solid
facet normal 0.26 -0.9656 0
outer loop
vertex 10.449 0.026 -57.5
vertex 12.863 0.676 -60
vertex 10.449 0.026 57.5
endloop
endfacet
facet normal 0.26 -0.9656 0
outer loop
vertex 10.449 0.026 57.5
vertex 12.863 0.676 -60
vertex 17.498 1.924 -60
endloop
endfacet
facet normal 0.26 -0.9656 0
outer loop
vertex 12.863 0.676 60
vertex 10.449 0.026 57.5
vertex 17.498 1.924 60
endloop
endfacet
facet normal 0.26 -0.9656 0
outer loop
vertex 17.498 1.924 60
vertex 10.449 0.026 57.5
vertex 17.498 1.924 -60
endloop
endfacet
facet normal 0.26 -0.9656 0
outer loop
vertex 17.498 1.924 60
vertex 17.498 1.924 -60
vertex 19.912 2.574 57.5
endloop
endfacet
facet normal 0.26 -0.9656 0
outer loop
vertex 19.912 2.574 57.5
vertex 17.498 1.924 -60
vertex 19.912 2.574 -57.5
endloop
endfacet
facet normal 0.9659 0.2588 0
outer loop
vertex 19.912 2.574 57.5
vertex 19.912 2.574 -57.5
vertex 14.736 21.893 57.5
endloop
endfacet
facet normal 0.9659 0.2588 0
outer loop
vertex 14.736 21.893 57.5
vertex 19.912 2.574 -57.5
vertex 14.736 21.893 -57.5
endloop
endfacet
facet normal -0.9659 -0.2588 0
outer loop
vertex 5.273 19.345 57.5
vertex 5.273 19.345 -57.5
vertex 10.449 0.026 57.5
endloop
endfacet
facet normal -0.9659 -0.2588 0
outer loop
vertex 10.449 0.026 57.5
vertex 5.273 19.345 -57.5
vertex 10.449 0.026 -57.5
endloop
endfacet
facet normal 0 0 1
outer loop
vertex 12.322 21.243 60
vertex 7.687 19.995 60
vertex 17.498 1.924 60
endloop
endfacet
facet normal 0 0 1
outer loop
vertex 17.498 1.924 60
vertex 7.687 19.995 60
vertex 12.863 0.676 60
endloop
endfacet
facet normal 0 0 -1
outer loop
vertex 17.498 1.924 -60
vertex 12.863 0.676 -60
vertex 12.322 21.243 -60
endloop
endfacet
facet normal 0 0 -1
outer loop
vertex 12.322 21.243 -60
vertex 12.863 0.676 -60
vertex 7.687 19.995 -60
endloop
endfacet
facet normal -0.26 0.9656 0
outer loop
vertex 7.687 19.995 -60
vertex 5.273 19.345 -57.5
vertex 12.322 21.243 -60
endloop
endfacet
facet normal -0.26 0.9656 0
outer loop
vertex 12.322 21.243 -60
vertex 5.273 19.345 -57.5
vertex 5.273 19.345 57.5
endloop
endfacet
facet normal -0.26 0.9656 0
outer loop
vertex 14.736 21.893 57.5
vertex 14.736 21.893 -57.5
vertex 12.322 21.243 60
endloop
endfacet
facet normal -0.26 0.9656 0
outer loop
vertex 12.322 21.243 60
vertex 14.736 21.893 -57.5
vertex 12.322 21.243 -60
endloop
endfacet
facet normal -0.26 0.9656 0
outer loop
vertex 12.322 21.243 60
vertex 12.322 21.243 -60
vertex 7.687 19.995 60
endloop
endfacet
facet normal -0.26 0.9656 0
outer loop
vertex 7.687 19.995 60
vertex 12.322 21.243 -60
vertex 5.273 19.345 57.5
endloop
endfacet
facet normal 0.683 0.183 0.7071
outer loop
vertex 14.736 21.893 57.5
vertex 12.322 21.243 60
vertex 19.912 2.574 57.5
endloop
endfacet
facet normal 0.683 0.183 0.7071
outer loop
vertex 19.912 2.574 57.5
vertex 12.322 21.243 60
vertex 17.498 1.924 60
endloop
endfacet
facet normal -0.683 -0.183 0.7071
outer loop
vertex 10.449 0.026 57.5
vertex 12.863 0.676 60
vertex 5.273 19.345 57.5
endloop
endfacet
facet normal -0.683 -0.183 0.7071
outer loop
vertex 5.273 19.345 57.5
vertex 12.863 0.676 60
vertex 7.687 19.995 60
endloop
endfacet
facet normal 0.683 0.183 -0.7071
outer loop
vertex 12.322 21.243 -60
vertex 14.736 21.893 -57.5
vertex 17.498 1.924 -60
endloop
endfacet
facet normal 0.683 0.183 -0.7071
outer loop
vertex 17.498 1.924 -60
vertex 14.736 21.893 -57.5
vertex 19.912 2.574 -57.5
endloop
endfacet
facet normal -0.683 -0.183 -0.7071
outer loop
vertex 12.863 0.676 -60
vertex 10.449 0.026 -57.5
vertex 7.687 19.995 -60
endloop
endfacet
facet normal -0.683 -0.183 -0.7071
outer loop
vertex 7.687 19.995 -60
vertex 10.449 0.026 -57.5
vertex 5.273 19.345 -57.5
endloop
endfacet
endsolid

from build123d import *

# Parameters (mm, degrees)
BOSS_EXTRUDE1_DEPTH    = 60
CUT_EXTRUDE1_DEPTH     = 128.644720336
MOVE_START             = 10
MOVE_FACE1_OUTLINE_W   = 23
MOVE_FACE1_OUTLINE_H   = 122
MOVE_FACE1_DEPTH       = 0.1
MOVE_START_2           = 19.9
MOVE_FACE1_2_OUTLINE_W = 23
MOVE_FACE1_2_OUTLINE_H = 122
MOVE_FACE1_2_DEPTH     = 0.1
CHAMFER1_SIZE          = 2.5


# Read off the part's stored shape, not the designer's step: Move Face1
with BuildPart() as part:
    # Sketch1 → Boss-Extrude1 (new, symmetric)
    with BuildSketch(Plane.XY):
        Polygon((0, 38.637033052), (10.352761804, 0), (20.008855708, 2.6), (10.352761804, 38.637033052), align=None)
    extrude(amount=BOSS_EXTRUDE1_DEPTH, both=True)

    # Sketch2 → Cut-Extrude1 (cut, through all)
    with BuildSketch(Plane.XY.offset(60)):
        Polygon((5.176380902, 19.318516526), (14.832474806, 21.918516526), (10.352761804, 38.637033052), (0, 38.637033052), align=None)
    extrude(amount=-CUT_EXTRUDE1_DEPTH, mode=Mode.SUBTRACT)

    # Move Face1 outline → Move Face1 (cut)
    with BuildSketch(Plane(origin=(0, 0, 0), x_dir=(-0.258819045102515, 0.9659258262890698, 0), z_dir=(0.9659258262890699, 0.258819045102515, 0)).offset(MOVE_START)):
        with Locations((7.5, 0)):
            Rectangle(MOVE_FACE1_OUTLINE_W, MOVE_FACE1_OUTLINE_H)
    extrude(amount=MOVE_FACE1_DEPTH, mode=Mode.SUBTRACT)

    # Move Face1 2 outline → Move Face1 2 (cut)
    with BuildSketch(Plane(origin=(0, 0, 0), x_dir=(-0.258819045102515, 0.9659258262890698, 0), z_dir=(0.9659258262890699, 0.258819045102515, 0)).offset(MOVE_START_2)):
        with Locations((7.5, 0)):
            Rectangle(MOVE_FACE1_2_OUTLINE_W, MOVE_FACE1_2_OUTLINE_H)
    extrude(amount=MOVE_FACE1_2_DEPTH, mode=Mode.SUBTRACT)

    # Chamfer1
    chamfer1_edges = [part.edges().sort_by_distance(p)[0] for p in [
        (7.861132292, 9.685258263, -60),
        (7.861132292, 9.685258263, 60),
        (17.324104318, 12.233258263, -60),
        (17.324104318, 12.233258263, 60),
    ]]
    chamfer(chamfer1_edges, length=CHAMFER1_SIZE)


solid = part.part
